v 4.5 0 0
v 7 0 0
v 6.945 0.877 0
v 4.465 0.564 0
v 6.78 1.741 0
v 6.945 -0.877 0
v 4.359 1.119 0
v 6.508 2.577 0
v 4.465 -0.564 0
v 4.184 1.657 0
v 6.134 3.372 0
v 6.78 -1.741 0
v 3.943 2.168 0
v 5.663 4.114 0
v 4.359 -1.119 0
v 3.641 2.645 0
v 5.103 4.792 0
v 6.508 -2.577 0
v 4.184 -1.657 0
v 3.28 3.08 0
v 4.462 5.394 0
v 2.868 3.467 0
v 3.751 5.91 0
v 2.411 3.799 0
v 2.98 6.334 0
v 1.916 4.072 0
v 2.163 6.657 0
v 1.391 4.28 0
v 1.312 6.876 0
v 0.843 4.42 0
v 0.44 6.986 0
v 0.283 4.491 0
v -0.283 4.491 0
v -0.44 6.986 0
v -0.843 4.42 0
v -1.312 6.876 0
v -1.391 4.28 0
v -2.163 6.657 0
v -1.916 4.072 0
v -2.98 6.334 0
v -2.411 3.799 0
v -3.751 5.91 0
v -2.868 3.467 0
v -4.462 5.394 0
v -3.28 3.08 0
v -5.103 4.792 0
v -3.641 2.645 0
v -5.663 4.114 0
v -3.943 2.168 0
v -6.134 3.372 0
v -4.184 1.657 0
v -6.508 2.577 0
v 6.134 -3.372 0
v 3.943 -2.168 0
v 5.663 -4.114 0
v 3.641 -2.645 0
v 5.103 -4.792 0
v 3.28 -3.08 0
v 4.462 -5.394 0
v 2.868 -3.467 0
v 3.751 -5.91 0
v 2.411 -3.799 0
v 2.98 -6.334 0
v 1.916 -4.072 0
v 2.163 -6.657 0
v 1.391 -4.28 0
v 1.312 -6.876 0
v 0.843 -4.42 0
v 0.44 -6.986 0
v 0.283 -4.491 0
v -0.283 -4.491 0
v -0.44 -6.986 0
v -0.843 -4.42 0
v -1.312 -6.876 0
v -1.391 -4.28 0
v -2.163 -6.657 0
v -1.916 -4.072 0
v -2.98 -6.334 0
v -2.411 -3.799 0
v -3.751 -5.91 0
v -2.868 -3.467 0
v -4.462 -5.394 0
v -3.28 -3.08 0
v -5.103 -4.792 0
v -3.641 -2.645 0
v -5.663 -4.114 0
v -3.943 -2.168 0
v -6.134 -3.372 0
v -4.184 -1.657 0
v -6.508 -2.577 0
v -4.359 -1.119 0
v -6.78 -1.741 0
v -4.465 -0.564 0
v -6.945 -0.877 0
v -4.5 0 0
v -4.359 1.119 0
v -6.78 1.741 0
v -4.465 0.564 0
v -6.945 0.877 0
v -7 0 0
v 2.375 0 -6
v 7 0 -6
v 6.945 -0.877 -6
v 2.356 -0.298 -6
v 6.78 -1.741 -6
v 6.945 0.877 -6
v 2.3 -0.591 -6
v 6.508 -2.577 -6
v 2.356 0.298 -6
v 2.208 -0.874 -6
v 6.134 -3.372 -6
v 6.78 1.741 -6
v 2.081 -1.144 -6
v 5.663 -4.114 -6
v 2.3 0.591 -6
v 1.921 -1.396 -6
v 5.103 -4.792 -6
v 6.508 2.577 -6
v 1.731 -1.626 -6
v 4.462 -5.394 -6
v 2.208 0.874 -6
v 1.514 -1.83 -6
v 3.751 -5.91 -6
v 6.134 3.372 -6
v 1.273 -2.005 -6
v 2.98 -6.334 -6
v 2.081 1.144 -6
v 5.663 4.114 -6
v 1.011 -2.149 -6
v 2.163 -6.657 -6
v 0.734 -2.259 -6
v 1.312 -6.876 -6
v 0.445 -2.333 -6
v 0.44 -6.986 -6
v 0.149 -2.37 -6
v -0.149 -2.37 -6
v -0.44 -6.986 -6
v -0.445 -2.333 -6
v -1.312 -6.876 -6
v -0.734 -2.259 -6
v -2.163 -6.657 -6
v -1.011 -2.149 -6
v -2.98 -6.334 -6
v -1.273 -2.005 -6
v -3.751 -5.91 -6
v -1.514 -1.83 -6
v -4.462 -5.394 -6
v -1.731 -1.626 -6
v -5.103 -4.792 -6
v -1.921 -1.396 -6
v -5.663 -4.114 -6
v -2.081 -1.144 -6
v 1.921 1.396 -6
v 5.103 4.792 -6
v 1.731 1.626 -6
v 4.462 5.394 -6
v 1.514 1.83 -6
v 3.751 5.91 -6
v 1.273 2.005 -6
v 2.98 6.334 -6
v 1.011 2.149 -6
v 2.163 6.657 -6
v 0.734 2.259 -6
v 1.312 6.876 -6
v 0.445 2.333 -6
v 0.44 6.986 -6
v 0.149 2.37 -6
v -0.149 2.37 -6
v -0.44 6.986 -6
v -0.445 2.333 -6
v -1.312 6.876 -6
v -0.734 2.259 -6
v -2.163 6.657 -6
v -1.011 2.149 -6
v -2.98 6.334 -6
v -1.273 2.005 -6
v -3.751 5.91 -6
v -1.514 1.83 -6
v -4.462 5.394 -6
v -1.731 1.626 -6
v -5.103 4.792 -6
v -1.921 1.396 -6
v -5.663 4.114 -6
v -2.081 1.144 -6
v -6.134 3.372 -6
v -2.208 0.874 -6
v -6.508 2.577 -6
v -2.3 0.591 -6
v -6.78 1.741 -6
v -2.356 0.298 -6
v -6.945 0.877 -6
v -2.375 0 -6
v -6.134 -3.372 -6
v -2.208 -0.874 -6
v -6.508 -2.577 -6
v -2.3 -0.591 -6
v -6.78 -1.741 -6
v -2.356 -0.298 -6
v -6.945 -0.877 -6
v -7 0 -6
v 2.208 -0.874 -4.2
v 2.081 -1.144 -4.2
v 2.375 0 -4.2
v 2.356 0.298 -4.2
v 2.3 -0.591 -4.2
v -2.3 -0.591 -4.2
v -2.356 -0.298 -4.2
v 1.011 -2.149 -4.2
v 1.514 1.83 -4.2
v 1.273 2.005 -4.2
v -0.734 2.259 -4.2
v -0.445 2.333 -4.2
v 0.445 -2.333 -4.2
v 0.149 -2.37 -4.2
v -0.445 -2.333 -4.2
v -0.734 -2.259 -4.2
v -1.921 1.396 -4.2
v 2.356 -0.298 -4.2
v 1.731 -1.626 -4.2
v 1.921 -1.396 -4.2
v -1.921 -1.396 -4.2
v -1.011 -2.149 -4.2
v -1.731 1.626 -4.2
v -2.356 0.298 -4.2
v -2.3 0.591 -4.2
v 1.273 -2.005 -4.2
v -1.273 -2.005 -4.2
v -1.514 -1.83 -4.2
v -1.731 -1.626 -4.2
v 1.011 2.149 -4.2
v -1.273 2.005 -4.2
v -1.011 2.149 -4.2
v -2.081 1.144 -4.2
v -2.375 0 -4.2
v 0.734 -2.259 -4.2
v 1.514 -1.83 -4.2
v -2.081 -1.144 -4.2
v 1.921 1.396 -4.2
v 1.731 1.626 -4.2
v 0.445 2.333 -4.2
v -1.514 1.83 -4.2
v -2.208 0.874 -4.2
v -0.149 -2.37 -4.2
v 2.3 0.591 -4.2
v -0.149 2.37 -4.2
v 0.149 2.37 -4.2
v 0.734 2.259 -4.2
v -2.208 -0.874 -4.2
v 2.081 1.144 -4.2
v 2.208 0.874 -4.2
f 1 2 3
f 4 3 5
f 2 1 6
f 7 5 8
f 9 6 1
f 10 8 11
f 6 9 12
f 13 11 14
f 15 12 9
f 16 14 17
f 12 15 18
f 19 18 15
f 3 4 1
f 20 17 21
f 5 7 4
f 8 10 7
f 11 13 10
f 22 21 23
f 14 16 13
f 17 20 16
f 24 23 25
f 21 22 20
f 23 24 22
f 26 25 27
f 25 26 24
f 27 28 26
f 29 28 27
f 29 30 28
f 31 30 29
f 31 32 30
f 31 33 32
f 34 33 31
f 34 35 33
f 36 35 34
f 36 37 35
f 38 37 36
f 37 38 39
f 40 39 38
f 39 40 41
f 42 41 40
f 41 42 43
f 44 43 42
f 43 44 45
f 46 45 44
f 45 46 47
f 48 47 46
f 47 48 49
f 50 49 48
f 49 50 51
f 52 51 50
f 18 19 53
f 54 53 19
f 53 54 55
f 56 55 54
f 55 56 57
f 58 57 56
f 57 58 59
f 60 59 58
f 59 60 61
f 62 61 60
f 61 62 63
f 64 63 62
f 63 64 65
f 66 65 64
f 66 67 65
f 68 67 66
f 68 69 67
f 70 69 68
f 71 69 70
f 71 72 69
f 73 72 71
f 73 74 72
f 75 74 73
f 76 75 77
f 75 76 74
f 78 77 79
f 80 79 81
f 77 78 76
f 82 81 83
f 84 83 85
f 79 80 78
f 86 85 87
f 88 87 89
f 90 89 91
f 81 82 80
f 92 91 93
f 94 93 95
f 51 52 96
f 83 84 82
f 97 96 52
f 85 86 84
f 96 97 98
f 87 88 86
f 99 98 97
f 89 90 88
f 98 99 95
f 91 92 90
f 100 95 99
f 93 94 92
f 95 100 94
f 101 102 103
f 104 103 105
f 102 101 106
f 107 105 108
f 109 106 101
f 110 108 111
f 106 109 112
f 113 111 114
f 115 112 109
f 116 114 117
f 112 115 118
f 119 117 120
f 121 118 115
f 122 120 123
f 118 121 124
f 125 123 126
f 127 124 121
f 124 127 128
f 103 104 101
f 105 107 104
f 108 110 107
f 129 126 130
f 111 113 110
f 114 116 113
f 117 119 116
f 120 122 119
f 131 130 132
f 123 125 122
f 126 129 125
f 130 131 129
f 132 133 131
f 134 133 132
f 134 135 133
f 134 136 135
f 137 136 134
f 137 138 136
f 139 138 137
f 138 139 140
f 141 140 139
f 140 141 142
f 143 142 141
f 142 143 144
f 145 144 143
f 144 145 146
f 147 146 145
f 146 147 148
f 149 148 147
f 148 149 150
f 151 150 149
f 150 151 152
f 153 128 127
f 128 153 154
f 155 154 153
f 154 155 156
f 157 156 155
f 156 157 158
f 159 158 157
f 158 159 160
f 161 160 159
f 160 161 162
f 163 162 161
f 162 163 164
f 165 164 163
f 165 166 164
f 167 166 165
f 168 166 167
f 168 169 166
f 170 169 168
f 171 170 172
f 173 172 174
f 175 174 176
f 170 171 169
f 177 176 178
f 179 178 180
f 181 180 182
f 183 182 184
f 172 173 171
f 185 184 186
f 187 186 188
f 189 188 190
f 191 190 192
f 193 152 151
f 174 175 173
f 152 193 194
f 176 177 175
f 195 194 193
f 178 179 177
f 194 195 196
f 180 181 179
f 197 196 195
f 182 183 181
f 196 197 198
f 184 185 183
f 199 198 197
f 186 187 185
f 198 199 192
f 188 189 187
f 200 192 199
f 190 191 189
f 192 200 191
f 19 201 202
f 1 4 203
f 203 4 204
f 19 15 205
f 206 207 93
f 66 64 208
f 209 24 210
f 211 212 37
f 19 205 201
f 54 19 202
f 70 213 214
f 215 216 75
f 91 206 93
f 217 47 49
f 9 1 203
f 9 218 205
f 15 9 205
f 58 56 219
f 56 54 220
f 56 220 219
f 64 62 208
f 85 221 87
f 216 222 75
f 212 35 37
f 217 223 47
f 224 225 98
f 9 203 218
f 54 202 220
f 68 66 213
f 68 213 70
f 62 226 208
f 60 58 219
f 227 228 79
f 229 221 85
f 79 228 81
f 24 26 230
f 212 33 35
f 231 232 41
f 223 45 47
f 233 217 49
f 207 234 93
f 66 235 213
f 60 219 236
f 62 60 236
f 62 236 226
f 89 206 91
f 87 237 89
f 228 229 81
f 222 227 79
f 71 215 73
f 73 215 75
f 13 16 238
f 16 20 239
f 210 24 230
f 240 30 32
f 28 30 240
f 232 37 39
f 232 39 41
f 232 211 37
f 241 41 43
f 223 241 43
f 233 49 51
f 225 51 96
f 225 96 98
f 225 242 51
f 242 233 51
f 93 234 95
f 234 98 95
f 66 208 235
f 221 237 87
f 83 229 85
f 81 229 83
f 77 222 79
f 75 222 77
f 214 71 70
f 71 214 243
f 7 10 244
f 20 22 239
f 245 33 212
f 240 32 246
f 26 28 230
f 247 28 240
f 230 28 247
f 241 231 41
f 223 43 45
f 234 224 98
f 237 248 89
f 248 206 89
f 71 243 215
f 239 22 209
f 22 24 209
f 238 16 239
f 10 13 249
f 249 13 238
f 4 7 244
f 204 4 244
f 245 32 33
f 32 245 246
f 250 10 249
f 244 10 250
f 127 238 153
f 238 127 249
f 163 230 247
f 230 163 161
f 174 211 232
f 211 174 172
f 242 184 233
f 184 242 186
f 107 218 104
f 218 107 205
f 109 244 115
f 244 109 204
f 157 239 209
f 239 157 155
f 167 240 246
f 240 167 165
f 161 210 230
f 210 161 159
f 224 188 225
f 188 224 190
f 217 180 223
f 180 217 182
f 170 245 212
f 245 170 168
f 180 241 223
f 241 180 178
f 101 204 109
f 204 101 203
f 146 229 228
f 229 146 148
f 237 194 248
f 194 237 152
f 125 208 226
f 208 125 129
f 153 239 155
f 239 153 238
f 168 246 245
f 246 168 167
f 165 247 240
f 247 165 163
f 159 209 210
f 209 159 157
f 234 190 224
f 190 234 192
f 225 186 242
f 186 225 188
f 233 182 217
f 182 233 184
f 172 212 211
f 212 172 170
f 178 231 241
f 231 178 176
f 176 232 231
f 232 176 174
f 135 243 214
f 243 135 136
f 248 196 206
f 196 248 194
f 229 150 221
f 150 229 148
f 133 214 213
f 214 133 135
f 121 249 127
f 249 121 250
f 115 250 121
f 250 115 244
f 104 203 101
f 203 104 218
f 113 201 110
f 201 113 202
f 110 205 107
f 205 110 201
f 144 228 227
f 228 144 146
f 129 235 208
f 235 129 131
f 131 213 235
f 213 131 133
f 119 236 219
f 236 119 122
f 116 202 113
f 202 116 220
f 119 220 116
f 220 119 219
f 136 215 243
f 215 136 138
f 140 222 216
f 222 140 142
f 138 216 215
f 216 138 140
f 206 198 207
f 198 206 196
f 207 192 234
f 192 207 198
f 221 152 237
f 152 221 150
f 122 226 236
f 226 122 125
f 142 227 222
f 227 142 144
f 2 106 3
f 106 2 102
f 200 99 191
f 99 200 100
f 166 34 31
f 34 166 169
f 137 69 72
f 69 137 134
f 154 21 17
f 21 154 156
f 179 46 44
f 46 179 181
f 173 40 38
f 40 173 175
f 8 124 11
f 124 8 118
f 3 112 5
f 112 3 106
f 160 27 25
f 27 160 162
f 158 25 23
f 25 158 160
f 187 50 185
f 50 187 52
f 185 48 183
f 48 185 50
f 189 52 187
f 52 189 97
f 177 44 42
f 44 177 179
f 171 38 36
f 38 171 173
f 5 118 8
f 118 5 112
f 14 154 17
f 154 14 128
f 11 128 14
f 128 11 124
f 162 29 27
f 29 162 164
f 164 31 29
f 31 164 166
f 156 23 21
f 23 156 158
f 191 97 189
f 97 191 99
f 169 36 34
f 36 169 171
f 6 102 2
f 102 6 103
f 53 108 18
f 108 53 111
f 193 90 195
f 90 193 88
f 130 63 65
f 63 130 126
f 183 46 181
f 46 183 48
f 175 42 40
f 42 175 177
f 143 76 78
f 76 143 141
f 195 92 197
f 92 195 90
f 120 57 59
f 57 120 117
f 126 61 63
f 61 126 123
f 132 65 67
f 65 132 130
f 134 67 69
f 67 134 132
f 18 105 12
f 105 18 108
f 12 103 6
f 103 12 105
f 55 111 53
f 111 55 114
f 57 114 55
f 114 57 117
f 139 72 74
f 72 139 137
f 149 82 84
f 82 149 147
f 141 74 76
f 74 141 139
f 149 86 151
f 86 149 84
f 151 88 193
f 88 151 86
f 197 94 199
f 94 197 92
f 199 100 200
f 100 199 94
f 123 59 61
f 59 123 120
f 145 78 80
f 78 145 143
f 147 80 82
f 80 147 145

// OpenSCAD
$fn = 50;


difference() {
	union() {
		translate(v = [0, 0, -6.0000000000]) {
			cylinder(h = 6, r = 7.0000000000);
		}
		cylinder(h = 0, r = 17.0000000000);
	}
	union() {
		translate(v = [0, 0, 0]) {
			rotate(a = [0, 0, 0]) {
				difference() {
					union() {
						#translate(v = [0, 0, -6.0000000000]) {
							cylinder(h = 6, r = 2.2500000000);
						}
						#translate(v = [0, 0, -4.2000000000]) {
							cylinder(h = 4.2000000000, r = 7.0000000000, r1 = 2.3750000000, r2 = 4.5000000000);
						}
						#translate(v = [0, 0, -6.0000000000]) {
							cylinder(h = 6, r = 2.3750000000);
						}
						#translate(v = [0, 0, -6.0000000000]) {
							cylinder(h = 6, r = 2.2500000000);
						}
					}
					union();
				}
			}
		}
	}
}
